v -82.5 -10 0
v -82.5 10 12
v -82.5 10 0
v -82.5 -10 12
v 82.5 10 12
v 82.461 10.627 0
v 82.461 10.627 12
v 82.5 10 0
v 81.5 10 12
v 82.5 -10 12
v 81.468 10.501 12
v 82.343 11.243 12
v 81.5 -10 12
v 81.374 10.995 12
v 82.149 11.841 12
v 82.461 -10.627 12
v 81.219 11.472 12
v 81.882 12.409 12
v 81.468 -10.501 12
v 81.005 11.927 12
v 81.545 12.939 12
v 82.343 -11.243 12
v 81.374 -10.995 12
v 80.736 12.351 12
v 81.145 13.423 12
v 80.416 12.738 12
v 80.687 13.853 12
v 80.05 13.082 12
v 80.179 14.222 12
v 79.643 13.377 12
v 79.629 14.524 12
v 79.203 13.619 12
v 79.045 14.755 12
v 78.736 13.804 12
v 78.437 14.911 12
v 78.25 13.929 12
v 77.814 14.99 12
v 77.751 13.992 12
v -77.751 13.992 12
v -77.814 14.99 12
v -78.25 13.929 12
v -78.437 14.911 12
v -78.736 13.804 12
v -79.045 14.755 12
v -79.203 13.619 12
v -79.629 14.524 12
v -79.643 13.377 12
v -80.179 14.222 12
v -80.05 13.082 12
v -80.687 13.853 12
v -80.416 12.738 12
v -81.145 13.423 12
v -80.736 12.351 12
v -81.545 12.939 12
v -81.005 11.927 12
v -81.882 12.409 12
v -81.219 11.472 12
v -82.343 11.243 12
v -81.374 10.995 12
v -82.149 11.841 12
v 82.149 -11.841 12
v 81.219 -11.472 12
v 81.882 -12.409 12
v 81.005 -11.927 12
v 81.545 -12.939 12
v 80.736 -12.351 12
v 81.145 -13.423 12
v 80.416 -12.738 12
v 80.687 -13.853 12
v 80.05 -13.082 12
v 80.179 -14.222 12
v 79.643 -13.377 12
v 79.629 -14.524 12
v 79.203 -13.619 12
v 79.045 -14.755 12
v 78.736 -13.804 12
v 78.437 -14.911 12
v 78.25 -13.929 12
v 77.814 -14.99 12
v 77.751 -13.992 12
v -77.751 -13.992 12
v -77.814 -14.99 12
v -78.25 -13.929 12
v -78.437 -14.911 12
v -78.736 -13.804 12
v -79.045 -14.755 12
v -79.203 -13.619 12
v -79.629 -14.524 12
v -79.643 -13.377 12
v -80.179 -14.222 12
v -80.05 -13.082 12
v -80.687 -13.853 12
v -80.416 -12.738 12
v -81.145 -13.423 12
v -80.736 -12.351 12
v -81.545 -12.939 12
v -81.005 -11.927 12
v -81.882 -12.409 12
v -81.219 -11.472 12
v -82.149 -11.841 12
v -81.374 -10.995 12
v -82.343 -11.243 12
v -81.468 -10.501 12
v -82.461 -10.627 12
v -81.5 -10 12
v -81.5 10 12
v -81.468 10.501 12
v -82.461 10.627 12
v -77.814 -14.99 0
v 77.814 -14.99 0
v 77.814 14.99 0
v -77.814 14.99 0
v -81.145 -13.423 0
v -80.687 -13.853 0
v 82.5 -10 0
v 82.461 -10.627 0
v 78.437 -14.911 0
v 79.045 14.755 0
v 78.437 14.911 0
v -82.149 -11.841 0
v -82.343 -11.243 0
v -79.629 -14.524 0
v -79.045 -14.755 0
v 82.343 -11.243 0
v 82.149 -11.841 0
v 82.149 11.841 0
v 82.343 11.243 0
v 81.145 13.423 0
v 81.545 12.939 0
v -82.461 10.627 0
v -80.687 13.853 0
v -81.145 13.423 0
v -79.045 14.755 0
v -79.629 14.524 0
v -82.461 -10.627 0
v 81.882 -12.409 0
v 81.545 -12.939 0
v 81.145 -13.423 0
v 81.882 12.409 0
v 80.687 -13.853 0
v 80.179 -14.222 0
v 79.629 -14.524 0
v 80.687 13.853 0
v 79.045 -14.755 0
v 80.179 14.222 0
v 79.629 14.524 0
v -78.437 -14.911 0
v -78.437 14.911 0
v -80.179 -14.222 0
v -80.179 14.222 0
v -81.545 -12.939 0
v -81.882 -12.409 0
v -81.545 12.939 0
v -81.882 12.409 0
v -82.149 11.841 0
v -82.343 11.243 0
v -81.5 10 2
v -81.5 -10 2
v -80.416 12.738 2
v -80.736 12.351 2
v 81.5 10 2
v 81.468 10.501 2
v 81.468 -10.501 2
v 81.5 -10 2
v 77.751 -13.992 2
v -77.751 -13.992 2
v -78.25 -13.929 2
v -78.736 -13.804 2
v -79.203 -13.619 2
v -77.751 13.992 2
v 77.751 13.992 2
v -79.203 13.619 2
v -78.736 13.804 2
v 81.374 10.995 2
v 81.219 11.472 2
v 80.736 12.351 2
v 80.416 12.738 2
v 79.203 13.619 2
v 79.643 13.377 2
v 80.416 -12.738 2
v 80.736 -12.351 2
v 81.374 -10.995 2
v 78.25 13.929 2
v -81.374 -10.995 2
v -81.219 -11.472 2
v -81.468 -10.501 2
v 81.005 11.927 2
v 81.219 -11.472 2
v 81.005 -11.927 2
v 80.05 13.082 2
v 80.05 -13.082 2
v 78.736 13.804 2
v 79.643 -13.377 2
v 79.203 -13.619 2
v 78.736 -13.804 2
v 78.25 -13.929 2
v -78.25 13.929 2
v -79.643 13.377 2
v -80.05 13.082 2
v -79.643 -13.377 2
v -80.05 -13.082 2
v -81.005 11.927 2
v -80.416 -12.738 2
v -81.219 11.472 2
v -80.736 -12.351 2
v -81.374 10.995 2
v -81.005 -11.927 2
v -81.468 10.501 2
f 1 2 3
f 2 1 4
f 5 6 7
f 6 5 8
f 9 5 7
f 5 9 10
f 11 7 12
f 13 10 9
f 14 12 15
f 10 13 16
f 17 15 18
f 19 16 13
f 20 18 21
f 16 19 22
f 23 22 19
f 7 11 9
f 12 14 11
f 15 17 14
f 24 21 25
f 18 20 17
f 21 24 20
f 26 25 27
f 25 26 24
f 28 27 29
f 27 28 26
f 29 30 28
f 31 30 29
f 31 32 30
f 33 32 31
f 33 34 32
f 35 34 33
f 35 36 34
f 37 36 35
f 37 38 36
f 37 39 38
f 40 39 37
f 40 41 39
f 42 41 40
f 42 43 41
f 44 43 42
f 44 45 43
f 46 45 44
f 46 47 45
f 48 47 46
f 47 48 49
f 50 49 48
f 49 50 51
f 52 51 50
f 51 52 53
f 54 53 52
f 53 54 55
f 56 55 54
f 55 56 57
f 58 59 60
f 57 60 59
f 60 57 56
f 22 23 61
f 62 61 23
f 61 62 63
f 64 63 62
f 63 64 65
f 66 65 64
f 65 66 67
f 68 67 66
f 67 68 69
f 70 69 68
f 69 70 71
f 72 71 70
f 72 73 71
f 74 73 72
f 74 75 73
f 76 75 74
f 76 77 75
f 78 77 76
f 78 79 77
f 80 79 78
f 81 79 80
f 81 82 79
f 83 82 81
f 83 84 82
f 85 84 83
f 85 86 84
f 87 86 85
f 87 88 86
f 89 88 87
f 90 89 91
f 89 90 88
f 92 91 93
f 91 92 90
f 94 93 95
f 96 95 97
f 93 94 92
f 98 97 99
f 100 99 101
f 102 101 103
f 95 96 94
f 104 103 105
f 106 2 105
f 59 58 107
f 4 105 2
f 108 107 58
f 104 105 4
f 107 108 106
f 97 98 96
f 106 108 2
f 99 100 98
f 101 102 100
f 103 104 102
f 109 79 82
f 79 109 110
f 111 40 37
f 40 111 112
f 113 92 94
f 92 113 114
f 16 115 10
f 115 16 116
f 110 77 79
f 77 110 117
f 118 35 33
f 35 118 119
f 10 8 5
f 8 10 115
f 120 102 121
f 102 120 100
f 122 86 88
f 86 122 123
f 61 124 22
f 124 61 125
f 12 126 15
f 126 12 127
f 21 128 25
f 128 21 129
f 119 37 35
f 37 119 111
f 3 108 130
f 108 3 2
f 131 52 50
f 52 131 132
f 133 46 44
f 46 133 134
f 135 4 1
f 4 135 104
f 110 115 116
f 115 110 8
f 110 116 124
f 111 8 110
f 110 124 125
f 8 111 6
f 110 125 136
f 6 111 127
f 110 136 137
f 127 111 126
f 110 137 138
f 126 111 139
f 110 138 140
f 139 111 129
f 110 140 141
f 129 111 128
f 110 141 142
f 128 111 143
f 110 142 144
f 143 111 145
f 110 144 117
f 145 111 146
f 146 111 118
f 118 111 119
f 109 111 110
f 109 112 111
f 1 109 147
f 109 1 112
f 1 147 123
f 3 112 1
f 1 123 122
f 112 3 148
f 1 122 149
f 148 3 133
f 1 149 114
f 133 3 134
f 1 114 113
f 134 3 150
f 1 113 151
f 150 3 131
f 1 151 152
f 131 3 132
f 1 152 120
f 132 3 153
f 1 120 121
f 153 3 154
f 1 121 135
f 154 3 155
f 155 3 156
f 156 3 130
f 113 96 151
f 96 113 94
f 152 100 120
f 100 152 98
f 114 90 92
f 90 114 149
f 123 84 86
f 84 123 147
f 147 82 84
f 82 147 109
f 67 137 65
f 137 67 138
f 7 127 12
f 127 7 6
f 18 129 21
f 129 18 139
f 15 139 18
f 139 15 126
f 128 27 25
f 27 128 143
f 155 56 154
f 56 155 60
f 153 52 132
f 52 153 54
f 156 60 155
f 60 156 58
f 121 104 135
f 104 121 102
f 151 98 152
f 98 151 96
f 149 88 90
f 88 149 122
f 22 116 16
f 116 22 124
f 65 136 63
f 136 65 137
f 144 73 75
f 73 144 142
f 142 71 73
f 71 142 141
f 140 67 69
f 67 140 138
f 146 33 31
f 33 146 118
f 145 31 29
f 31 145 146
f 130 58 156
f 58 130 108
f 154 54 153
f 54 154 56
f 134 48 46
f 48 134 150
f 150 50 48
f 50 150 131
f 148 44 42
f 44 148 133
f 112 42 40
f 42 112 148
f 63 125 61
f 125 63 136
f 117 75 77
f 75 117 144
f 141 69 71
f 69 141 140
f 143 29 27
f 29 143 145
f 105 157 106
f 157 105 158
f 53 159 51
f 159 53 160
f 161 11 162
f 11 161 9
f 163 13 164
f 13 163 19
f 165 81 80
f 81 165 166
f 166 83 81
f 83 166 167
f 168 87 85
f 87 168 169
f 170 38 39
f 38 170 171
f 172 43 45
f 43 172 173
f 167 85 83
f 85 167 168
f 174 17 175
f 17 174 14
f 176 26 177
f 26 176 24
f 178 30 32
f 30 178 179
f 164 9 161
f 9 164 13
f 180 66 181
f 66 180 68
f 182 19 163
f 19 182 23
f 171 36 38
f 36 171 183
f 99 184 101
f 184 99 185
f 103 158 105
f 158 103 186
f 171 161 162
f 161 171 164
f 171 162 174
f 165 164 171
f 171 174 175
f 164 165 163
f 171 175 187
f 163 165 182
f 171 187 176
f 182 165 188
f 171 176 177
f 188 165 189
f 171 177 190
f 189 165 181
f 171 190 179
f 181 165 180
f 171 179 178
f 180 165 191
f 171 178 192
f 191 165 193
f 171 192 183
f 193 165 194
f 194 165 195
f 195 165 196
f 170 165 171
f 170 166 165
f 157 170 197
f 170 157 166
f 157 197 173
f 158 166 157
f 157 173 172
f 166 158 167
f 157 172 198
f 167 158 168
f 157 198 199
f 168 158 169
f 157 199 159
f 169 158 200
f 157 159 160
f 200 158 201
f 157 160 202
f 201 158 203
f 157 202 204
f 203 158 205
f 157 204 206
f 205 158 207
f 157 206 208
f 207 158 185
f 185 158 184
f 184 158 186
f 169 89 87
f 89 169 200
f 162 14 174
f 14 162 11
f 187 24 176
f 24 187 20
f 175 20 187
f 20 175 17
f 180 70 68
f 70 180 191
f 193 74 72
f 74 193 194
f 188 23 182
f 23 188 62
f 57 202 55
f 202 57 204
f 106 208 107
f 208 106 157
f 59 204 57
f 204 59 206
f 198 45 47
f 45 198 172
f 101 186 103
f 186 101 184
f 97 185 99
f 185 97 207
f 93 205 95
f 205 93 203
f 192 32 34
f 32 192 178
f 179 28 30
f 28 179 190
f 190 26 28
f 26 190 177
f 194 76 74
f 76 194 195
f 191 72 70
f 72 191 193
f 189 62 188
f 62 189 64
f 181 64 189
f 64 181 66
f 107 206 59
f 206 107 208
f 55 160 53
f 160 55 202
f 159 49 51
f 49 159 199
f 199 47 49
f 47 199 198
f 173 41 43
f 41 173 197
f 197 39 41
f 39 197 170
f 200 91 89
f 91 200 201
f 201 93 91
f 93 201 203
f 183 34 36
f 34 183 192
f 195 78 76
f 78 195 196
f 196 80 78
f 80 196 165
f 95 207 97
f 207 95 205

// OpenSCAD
$fn = 50;


difference() {
	union() {
		hull() {
			translate(v = [-77.5000000000, 10.0000000000, 0]) {
				cylinder(h = 12, r = 5);
			}
			translate(v = [77.5000000000, 10.0000000000, 0]) {
				cylinder(h = 12, r = 5);
			}
			translate(v = [-77.5000000000, -10.0000000000, 0]) {
				cylinder(h = 12, r = 5);
			}
			translate(v = [77.5000000000, -10.0000000000, 0]) {
				cylinder(h = 12, r = 5);
			}
		}
	}
	union() {
		translate(v = [0, 0, 2]) {
			hull() {
				translate(v = [-77.5000000000, 10.0000000000, 0]) {
					cylinder(h = 10, r = 4);
				}
				translate(v = [77.5000000000, 10.0000000000, 0]) {
					cylinder(h = 10, r = 4);
				}
				translate(v = [-77.5000000000, -10.0000000000, 0]) {
					cylinder(h = 10, r = 4);
				}
				translate(v = [77.5000000000, -10.0000000000, 0]) {
					cylinder(h = 10, r = 4);
				}
			}
		}
	}
}
